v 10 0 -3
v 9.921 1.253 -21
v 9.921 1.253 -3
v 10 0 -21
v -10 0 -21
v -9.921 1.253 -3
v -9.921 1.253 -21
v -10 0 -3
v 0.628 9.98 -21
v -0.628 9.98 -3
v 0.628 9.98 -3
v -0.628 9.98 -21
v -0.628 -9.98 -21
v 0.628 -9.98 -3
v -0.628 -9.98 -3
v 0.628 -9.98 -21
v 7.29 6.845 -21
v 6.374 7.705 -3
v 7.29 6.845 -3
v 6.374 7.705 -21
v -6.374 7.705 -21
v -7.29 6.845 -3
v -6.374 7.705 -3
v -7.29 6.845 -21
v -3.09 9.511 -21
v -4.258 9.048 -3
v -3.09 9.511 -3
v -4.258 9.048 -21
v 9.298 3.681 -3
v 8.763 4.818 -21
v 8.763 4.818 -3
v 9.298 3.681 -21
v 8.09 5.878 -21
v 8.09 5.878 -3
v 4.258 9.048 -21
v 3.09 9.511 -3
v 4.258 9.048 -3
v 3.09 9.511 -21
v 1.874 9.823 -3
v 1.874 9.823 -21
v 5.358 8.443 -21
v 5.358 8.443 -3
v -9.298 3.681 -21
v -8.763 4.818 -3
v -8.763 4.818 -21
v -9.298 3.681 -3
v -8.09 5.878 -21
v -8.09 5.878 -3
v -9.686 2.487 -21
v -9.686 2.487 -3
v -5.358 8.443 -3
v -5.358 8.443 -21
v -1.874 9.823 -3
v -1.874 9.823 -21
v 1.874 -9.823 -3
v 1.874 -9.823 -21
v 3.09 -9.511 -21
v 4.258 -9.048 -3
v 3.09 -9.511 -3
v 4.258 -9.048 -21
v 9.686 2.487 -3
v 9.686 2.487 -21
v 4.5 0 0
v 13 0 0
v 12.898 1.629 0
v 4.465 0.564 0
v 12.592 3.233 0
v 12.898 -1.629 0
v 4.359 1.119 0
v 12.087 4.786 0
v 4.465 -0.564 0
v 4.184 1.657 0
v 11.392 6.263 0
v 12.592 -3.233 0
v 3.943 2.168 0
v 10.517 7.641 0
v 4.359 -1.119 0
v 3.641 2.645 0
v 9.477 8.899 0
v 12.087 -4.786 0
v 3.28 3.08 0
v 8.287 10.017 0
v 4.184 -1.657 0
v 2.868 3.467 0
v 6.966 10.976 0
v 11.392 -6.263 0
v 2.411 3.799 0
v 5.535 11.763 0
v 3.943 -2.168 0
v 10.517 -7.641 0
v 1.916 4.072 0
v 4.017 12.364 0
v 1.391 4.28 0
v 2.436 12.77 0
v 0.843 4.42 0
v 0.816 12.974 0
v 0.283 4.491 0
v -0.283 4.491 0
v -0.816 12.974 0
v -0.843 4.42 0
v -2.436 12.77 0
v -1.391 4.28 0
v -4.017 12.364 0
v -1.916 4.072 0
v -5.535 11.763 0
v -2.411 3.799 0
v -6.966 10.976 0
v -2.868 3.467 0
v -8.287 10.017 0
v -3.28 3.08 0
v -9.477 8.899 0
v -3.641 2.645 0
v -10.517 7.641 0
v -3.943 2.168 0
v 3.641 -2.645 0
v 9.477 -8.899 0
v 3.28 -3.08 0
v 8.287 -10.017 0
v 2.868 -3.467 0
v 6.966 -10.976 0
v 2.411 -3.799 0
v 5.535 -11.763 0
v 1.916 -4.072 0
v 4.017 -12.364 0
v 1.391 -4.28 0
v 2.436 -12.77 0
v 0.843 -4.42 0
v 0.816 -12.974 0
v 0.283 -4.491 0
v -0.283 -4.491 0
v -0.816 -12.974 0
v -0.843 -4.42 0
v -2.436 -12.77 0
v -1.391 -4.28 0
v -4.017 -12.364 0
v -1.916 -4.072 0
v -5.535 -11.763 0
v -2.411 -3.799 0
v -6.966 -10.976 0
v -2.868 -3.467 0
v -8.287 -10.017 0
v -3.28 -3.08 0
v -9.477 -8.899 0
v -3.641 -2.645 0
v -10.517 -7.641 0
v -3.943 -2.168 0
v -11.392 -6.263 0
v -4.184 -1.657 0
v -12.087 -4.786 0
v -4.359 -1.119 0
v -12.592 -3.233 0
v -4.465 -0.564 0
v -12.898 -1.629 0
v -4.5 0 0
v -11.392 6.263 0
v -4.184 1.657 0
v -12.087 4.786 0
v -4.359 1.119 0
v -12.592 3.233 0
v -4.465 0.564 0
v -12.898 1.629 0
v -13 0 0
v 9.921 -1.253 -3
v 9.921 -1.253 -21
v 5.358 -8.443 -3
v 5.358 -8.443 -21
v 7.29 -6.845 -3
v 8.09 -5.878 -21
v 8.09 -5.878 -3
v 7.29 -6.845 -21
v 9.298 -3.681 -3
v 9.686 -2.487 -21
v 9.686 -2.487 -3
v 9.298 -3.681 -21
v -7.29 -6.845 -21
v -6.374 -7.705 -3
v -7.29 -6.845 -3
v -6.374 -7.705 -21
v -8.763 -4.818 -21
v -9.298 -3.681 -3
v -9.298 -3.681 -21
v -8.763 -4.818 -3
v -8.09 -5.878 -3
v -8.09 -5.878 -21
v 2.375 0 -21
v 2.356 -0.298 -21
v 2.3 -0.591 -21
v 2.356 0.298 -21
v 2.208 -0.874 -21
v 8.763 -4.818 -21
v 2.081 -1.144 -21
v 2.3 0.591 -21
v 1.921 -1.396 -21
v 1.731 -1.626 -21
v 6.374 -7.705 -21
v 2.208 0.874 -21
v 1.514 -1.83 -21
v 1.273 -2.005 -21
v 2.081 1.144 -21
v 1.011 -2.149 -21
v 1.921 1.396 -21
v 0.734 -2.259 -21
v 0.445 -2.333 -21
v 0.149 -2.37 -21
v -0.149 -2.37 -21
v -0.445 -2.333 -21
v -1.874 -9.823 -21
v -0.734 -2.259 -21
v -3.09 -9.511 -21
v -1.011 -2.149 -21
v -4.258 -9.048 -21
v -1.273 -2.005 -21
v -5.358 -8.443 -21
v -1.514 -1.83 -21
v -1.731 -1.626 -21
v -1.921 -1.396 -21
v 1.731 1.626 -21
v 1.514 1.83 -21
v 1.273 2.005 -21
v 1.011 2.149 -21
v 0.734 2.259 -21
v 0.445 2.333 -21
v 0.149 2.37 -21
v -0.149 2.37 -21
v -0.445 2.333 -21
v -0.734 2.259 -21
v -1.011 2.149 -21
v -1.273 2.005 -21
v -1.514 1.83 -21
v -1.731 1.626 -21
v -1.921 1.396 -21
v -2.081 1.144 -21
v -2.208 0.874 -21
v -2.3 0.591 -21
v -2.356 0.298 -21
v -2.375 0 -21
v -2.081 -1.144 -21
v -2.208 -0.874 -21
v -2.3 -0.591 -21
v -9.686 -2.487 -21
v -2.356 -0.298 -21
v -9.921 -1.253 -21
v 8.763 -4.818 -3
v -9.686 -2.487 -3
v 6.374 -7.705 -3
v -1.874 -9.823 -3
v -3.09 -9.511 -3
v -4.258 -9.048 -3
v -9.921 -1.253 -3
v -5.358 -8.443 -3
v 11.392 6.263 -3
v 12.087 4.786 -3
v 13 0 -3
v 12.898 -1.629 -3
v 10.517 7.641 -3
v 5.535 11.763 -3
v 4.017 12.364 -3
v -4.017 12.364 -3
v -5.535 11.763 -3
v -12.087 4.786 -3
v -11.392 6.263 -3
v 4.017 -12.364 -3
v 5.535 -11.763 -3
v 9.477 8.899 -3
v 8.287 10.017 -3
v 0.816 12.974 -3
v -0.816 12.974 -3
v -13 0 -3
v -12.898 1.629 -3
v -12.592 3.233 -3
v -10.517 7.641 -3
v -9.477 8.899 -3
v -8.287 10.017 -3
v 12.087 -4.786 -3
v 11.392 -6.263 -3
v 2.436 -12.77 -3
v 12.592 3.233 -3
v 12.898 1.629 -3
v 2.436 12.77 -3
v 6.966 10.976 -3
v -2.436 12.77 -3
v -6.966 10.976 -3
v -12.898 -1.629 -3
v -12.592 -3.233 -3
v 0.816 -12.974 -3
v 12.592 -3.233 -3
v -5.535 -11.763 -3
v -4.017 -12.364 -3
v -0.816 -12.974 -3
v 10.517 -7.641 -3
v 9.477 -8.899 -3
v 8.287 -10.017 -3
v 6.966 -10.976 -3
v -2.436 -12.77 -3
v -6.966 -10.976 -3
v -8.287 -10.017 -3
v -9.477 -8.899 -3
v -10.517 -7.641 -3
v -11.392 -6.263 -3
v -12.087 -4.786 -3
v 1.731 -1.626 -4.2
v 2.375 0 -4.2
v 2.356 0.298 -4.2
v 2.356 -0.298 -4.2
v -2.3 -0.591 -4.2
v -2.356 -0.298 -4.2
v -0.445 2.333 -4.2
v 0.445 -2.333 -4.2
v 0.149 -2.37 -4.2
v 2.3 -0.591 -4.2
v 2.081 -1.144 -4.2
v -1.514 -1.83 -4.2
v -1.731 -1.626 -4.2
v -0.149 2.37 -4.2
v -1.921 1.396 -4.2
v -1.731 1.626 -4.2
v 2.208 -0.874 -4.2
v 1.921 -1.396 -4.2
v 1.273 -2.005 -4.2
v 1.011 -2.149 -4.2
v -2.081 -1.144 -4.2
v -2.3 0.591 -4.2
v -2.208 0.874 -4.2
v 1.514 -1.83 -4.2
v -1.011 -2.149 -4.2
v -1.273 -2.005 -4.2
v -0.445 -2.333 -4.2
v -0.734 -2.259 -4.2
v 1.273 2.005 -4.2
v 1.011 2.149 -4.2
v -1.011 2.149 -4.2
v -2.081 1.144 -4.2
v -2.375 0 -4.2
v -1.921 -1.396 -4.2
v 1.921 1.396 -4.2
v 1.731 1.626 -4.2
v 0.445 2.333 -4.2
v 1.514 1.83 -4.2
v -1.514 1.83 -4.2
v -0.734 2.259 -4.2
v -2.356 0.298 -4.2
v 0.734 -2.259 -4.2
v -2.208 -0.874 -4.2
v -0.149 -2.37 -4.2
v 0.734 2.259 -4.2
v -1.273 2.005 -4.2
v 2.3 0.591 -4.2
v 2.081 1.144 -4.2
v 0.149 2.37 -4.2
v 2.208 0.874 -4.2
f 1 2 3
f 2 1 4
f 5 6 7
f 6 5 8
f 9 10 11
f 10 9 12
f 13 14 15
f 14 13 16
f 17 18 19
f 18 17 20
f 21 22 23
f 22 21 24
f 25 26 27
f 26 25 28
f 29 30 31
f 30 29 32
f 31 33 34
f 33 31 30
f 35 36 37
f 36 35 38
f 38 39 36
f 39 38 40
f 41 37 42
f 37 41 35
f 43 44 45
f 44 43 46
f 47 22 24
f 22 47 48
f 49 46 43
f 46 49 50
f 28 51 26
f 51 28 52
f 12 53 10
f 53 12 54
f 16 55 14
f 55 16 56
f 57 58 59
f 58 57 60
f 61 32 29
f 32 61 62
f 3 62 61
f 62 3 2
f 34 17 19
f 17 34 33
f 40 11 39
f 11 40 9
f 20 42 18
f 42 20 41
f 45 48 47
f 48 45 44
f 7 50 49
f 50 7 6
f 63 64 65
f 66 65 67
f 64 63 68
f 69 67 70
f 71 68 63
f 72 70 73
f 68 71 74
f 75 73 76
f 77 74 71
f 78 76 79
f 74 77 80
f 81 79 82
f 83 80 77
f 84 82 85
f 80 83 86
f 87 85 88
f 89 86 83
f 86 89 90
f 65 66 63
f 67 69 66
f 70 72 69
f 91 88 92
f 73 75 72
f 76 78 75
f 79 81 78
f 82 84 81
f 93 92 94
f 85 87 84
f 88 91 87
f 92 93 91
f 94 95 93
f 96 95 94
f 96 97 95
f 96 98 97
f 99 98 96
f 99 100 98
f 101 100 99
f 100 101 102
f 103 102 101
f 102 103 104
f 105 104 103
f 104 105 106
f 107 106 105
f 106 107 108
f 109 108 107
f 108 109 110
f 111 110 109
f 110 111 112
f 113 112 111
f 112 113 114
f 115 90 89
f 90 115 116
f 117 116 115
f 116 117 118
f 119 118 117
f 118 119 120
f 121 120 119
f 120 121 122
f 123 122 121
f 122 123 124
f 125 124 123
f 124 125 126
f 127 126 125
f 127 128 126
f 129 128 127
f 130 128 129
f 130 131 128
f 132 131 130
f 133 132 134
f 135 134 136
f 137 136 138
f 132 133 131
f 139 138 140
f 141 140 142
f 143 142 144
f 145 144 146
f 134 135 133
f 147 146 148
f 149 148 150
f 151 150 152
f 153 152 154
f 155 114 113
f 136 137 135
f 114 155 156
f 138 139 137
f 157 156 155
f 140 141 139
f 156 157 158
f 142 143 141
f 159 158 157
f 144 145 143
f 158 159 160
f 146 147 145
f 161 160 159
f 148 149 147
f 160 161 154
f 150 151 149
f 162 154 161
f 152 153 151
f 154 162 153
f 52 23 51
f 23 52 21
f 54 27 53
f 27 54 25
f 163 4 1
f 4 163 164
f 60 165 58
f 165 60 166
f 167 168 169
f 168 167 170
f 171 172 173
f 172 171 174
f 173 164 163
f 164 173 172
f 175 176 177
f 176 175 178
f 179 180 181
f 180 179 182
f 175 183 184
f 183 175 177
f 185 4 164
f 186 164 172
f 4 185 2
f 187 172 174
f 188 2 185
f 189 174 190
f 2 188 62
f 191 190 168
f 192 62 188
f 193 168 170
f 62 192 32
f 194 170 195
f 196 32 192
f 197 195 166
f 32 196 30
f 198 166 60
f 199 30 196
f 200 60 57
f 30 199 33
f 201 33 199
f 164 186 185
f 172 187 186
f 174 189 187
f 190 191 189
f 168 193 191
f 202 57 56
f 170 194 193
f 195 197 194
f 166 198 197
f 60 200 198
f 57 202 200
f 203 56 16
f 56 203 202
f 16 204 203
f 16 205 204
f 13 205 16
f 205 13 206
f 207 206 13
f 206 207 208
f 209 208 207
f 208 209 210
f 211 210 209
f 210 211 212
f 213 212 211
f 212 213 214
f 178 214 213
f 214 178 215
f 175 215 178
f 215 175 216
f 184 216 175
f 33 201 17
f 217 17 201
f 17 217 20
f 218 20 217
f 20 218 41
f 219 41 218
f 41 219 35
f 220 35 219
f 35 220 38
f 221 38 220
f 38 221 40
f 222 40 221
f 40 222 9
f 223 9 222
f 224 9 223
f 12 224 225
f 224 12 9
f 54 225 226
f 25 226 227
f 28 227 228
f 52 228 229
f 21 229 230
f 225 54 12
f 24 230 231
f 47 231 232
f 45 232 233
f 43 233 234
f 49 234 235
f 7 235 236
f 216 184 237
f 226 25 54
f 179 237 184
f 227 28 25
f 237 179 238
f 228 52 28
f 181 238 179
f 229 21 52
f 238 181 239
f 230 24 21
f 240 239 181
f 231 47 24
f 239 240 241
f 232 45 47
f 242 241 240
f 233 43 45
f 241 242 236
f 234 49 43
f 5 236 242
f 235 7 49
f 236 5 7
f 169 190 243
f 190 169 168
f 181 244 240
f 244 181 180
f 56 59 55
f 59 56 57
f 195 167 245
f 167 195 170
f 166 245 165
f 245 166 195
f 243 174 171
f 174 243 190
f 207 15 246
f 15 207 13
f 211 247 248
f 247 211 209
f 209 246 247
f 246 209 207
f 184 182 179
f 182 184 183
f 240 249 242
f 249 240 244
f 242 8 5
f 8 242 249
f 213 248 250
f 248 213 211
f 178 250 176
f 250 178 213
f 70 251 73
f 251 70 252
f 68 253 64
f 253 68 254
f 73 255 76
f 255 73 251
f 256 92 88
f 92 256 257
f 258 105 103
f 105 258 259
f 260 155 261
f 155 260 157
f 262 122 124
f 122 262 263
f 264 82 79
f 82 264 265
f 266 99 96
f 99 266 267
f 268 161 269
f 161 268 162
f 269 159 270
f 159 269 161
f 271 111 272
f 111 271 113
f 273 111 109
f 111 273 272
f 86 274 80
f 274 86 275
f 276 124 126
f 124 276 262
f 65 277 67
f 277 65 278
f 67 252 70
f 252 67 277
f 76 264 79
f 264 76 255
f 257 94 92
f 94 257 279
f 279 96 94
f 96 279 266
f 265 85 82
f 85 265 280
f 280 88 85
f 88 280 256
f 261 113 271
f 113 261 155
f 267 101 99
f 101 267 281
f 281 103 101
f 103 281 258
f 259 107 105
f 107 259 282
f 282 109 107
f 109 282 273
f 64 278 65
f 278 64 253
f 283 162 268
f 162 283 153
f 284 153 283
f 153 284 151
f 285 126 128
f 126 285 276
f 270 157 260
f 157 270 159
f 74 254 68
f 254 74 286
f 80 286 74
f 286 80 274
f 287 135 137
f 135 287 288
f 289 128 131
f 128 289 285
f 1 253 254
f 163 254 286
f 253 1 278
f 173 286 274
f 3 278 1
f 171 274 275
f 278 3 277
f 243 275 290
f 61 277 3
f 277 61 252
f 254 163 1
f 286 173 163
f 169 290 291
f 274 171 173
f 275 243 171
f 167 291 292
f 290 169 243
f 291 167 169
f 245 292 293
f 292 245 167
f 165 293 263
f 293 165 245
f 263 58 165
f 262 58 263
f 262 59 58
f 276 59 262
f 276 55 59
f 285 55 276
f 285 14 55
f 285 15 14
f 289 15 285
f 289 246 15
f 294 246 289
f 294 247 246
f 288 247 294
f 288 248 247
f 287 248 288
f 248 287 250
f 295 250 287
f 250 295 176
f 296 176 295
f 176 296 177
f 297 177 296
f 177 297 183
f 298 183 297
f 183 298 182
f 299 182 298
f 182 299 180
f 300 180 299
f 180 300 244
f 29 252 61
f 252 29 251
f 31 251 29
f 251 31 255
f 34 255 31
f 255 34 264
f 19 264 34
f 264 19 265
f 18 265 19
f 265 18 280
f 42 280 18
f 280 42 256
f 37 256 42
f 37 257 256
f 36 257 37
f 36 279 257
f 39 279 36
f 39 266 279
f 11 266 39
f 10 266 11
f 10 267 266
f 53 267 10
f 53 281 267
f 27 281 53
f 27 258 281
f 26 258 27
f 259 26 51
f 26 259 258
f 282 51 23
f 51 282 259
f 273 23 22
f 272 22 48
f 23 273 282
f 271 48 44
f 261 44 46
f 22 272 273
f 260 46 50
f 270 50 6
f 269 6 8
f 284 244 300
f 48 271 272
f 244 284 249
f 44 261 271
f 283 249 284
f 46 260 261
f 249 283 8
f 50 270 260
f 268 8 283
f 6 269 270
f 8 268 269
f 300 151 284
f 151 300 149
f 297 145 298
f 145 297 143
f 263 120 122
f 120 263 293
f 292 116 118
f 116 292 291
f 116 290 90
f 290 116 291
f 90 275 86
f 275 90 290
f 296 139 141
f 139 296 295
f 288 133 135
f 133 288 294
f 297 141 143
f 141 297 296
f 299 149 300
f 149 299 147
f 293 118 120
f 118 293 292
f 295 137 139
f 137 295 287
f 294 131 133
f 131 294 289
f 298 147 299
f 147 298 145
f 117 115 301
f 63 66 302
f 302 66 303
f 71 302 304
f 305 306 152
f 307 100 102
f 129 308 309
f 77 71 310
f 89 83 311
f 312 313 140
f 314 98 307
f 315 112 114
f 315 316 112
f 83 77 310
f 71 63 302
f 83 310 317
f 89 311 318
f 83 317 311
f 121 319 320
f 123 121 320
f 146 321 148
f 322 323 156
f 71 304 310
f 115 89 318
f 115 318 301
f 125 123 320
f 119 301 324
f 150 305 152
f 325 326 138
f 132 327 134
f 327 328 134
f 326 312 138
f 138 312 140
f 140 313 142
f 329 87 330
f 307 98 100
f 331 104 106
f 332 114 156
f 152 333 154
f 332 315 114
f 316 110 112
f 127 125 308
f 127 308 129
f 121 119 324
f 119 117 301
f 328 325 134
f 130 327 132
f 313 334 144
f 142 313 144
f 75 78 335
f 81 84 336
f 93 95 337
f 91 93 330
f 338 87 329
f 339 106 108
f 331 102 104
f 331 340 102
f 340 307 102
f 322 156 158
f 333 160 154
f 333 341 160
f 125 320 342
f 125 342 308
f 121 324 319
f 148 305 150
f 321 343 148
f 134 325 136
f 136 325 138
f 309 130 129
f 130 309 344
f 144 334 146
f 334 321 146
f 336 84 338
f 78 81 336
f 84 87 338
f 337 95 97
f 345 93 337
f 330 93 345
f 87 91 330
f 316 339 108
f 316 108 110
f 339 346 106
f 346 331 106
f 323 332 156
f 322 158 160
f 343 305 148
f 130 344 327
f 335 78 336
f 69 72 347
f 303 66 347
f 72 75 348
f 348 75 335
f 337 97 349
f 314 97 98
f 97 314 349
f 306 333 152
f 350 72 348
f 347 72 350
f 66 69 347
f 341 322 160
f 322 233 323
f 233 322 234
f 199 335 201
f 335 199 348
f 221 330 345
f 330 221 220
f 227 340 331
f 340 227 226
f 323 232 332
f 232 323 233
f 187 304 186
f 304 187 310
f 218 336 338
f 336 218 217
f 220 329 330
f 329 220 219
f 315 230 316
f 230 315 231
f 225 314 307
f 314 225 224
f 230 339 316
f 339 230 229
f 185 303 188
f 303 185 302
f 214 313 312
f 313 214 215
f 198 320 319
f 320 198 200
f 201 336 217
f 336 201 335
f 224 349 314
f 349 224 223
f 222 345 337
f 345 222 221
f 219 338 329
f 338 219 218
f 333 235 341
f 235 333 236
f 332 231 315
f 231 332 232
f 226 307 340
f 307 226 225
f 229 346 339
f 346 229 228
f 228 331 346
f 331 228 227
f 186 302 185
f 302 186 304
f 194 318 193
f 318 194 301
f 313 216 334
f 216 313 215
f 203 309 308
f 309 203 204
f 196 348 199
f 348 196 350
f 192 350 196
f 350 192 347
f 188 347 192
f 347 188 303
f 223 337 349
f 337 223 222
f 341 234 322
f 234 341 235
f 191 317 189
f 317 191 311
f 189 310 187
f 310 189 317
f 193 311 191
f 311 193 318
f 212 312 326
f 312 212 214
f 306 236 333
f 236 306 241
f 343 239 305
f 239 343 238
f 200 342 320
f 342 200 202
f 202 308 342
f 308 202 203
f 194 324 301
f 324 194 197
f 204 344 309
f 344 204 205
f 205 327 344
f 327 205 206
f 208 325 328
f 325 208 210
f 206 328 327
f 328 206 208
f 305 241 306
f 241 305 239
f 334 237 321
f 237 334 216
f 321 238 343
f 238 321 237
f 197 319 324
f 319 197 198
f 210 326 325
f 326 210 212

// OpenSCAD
$fn = 50;


difference() {
	union() {
		translate(v = [0, 0, -21.0000000000]) {
			cylinder(h = 21, r = 10.0000000000);
		}
		translate(v = [0, 0, -3.0000000000]) {
			cylinder(h = 3, r = 13.0000000000);
		}
	}
	union() {
		translate(v = [0, 0, 0]) {
			rotate(a = [0, 0, 0]) {
				difference() {
					union() {
						#translate(v = [0, 0, -21.0000000000]) {
							cylinder(h = 21, r = 2.2500000000);
						}
						#translate(v = [0, 0, -4.2000000000]) {
							cylinder(h = 4.2000000000, r1 = 2.3750000000, r2 = 4.5000000000);
						}
						#translate(v = [0, 0, -21.0000000000]) {
							cylinder(h = 21, r = 2.3750000000);
						}
						#translate(v = [0, 0, -21.0000000000]) {
							cylinder(h = 21, r = 2.2500000000);
						}
					}
					union();
				}
			}
		}
	}
}
